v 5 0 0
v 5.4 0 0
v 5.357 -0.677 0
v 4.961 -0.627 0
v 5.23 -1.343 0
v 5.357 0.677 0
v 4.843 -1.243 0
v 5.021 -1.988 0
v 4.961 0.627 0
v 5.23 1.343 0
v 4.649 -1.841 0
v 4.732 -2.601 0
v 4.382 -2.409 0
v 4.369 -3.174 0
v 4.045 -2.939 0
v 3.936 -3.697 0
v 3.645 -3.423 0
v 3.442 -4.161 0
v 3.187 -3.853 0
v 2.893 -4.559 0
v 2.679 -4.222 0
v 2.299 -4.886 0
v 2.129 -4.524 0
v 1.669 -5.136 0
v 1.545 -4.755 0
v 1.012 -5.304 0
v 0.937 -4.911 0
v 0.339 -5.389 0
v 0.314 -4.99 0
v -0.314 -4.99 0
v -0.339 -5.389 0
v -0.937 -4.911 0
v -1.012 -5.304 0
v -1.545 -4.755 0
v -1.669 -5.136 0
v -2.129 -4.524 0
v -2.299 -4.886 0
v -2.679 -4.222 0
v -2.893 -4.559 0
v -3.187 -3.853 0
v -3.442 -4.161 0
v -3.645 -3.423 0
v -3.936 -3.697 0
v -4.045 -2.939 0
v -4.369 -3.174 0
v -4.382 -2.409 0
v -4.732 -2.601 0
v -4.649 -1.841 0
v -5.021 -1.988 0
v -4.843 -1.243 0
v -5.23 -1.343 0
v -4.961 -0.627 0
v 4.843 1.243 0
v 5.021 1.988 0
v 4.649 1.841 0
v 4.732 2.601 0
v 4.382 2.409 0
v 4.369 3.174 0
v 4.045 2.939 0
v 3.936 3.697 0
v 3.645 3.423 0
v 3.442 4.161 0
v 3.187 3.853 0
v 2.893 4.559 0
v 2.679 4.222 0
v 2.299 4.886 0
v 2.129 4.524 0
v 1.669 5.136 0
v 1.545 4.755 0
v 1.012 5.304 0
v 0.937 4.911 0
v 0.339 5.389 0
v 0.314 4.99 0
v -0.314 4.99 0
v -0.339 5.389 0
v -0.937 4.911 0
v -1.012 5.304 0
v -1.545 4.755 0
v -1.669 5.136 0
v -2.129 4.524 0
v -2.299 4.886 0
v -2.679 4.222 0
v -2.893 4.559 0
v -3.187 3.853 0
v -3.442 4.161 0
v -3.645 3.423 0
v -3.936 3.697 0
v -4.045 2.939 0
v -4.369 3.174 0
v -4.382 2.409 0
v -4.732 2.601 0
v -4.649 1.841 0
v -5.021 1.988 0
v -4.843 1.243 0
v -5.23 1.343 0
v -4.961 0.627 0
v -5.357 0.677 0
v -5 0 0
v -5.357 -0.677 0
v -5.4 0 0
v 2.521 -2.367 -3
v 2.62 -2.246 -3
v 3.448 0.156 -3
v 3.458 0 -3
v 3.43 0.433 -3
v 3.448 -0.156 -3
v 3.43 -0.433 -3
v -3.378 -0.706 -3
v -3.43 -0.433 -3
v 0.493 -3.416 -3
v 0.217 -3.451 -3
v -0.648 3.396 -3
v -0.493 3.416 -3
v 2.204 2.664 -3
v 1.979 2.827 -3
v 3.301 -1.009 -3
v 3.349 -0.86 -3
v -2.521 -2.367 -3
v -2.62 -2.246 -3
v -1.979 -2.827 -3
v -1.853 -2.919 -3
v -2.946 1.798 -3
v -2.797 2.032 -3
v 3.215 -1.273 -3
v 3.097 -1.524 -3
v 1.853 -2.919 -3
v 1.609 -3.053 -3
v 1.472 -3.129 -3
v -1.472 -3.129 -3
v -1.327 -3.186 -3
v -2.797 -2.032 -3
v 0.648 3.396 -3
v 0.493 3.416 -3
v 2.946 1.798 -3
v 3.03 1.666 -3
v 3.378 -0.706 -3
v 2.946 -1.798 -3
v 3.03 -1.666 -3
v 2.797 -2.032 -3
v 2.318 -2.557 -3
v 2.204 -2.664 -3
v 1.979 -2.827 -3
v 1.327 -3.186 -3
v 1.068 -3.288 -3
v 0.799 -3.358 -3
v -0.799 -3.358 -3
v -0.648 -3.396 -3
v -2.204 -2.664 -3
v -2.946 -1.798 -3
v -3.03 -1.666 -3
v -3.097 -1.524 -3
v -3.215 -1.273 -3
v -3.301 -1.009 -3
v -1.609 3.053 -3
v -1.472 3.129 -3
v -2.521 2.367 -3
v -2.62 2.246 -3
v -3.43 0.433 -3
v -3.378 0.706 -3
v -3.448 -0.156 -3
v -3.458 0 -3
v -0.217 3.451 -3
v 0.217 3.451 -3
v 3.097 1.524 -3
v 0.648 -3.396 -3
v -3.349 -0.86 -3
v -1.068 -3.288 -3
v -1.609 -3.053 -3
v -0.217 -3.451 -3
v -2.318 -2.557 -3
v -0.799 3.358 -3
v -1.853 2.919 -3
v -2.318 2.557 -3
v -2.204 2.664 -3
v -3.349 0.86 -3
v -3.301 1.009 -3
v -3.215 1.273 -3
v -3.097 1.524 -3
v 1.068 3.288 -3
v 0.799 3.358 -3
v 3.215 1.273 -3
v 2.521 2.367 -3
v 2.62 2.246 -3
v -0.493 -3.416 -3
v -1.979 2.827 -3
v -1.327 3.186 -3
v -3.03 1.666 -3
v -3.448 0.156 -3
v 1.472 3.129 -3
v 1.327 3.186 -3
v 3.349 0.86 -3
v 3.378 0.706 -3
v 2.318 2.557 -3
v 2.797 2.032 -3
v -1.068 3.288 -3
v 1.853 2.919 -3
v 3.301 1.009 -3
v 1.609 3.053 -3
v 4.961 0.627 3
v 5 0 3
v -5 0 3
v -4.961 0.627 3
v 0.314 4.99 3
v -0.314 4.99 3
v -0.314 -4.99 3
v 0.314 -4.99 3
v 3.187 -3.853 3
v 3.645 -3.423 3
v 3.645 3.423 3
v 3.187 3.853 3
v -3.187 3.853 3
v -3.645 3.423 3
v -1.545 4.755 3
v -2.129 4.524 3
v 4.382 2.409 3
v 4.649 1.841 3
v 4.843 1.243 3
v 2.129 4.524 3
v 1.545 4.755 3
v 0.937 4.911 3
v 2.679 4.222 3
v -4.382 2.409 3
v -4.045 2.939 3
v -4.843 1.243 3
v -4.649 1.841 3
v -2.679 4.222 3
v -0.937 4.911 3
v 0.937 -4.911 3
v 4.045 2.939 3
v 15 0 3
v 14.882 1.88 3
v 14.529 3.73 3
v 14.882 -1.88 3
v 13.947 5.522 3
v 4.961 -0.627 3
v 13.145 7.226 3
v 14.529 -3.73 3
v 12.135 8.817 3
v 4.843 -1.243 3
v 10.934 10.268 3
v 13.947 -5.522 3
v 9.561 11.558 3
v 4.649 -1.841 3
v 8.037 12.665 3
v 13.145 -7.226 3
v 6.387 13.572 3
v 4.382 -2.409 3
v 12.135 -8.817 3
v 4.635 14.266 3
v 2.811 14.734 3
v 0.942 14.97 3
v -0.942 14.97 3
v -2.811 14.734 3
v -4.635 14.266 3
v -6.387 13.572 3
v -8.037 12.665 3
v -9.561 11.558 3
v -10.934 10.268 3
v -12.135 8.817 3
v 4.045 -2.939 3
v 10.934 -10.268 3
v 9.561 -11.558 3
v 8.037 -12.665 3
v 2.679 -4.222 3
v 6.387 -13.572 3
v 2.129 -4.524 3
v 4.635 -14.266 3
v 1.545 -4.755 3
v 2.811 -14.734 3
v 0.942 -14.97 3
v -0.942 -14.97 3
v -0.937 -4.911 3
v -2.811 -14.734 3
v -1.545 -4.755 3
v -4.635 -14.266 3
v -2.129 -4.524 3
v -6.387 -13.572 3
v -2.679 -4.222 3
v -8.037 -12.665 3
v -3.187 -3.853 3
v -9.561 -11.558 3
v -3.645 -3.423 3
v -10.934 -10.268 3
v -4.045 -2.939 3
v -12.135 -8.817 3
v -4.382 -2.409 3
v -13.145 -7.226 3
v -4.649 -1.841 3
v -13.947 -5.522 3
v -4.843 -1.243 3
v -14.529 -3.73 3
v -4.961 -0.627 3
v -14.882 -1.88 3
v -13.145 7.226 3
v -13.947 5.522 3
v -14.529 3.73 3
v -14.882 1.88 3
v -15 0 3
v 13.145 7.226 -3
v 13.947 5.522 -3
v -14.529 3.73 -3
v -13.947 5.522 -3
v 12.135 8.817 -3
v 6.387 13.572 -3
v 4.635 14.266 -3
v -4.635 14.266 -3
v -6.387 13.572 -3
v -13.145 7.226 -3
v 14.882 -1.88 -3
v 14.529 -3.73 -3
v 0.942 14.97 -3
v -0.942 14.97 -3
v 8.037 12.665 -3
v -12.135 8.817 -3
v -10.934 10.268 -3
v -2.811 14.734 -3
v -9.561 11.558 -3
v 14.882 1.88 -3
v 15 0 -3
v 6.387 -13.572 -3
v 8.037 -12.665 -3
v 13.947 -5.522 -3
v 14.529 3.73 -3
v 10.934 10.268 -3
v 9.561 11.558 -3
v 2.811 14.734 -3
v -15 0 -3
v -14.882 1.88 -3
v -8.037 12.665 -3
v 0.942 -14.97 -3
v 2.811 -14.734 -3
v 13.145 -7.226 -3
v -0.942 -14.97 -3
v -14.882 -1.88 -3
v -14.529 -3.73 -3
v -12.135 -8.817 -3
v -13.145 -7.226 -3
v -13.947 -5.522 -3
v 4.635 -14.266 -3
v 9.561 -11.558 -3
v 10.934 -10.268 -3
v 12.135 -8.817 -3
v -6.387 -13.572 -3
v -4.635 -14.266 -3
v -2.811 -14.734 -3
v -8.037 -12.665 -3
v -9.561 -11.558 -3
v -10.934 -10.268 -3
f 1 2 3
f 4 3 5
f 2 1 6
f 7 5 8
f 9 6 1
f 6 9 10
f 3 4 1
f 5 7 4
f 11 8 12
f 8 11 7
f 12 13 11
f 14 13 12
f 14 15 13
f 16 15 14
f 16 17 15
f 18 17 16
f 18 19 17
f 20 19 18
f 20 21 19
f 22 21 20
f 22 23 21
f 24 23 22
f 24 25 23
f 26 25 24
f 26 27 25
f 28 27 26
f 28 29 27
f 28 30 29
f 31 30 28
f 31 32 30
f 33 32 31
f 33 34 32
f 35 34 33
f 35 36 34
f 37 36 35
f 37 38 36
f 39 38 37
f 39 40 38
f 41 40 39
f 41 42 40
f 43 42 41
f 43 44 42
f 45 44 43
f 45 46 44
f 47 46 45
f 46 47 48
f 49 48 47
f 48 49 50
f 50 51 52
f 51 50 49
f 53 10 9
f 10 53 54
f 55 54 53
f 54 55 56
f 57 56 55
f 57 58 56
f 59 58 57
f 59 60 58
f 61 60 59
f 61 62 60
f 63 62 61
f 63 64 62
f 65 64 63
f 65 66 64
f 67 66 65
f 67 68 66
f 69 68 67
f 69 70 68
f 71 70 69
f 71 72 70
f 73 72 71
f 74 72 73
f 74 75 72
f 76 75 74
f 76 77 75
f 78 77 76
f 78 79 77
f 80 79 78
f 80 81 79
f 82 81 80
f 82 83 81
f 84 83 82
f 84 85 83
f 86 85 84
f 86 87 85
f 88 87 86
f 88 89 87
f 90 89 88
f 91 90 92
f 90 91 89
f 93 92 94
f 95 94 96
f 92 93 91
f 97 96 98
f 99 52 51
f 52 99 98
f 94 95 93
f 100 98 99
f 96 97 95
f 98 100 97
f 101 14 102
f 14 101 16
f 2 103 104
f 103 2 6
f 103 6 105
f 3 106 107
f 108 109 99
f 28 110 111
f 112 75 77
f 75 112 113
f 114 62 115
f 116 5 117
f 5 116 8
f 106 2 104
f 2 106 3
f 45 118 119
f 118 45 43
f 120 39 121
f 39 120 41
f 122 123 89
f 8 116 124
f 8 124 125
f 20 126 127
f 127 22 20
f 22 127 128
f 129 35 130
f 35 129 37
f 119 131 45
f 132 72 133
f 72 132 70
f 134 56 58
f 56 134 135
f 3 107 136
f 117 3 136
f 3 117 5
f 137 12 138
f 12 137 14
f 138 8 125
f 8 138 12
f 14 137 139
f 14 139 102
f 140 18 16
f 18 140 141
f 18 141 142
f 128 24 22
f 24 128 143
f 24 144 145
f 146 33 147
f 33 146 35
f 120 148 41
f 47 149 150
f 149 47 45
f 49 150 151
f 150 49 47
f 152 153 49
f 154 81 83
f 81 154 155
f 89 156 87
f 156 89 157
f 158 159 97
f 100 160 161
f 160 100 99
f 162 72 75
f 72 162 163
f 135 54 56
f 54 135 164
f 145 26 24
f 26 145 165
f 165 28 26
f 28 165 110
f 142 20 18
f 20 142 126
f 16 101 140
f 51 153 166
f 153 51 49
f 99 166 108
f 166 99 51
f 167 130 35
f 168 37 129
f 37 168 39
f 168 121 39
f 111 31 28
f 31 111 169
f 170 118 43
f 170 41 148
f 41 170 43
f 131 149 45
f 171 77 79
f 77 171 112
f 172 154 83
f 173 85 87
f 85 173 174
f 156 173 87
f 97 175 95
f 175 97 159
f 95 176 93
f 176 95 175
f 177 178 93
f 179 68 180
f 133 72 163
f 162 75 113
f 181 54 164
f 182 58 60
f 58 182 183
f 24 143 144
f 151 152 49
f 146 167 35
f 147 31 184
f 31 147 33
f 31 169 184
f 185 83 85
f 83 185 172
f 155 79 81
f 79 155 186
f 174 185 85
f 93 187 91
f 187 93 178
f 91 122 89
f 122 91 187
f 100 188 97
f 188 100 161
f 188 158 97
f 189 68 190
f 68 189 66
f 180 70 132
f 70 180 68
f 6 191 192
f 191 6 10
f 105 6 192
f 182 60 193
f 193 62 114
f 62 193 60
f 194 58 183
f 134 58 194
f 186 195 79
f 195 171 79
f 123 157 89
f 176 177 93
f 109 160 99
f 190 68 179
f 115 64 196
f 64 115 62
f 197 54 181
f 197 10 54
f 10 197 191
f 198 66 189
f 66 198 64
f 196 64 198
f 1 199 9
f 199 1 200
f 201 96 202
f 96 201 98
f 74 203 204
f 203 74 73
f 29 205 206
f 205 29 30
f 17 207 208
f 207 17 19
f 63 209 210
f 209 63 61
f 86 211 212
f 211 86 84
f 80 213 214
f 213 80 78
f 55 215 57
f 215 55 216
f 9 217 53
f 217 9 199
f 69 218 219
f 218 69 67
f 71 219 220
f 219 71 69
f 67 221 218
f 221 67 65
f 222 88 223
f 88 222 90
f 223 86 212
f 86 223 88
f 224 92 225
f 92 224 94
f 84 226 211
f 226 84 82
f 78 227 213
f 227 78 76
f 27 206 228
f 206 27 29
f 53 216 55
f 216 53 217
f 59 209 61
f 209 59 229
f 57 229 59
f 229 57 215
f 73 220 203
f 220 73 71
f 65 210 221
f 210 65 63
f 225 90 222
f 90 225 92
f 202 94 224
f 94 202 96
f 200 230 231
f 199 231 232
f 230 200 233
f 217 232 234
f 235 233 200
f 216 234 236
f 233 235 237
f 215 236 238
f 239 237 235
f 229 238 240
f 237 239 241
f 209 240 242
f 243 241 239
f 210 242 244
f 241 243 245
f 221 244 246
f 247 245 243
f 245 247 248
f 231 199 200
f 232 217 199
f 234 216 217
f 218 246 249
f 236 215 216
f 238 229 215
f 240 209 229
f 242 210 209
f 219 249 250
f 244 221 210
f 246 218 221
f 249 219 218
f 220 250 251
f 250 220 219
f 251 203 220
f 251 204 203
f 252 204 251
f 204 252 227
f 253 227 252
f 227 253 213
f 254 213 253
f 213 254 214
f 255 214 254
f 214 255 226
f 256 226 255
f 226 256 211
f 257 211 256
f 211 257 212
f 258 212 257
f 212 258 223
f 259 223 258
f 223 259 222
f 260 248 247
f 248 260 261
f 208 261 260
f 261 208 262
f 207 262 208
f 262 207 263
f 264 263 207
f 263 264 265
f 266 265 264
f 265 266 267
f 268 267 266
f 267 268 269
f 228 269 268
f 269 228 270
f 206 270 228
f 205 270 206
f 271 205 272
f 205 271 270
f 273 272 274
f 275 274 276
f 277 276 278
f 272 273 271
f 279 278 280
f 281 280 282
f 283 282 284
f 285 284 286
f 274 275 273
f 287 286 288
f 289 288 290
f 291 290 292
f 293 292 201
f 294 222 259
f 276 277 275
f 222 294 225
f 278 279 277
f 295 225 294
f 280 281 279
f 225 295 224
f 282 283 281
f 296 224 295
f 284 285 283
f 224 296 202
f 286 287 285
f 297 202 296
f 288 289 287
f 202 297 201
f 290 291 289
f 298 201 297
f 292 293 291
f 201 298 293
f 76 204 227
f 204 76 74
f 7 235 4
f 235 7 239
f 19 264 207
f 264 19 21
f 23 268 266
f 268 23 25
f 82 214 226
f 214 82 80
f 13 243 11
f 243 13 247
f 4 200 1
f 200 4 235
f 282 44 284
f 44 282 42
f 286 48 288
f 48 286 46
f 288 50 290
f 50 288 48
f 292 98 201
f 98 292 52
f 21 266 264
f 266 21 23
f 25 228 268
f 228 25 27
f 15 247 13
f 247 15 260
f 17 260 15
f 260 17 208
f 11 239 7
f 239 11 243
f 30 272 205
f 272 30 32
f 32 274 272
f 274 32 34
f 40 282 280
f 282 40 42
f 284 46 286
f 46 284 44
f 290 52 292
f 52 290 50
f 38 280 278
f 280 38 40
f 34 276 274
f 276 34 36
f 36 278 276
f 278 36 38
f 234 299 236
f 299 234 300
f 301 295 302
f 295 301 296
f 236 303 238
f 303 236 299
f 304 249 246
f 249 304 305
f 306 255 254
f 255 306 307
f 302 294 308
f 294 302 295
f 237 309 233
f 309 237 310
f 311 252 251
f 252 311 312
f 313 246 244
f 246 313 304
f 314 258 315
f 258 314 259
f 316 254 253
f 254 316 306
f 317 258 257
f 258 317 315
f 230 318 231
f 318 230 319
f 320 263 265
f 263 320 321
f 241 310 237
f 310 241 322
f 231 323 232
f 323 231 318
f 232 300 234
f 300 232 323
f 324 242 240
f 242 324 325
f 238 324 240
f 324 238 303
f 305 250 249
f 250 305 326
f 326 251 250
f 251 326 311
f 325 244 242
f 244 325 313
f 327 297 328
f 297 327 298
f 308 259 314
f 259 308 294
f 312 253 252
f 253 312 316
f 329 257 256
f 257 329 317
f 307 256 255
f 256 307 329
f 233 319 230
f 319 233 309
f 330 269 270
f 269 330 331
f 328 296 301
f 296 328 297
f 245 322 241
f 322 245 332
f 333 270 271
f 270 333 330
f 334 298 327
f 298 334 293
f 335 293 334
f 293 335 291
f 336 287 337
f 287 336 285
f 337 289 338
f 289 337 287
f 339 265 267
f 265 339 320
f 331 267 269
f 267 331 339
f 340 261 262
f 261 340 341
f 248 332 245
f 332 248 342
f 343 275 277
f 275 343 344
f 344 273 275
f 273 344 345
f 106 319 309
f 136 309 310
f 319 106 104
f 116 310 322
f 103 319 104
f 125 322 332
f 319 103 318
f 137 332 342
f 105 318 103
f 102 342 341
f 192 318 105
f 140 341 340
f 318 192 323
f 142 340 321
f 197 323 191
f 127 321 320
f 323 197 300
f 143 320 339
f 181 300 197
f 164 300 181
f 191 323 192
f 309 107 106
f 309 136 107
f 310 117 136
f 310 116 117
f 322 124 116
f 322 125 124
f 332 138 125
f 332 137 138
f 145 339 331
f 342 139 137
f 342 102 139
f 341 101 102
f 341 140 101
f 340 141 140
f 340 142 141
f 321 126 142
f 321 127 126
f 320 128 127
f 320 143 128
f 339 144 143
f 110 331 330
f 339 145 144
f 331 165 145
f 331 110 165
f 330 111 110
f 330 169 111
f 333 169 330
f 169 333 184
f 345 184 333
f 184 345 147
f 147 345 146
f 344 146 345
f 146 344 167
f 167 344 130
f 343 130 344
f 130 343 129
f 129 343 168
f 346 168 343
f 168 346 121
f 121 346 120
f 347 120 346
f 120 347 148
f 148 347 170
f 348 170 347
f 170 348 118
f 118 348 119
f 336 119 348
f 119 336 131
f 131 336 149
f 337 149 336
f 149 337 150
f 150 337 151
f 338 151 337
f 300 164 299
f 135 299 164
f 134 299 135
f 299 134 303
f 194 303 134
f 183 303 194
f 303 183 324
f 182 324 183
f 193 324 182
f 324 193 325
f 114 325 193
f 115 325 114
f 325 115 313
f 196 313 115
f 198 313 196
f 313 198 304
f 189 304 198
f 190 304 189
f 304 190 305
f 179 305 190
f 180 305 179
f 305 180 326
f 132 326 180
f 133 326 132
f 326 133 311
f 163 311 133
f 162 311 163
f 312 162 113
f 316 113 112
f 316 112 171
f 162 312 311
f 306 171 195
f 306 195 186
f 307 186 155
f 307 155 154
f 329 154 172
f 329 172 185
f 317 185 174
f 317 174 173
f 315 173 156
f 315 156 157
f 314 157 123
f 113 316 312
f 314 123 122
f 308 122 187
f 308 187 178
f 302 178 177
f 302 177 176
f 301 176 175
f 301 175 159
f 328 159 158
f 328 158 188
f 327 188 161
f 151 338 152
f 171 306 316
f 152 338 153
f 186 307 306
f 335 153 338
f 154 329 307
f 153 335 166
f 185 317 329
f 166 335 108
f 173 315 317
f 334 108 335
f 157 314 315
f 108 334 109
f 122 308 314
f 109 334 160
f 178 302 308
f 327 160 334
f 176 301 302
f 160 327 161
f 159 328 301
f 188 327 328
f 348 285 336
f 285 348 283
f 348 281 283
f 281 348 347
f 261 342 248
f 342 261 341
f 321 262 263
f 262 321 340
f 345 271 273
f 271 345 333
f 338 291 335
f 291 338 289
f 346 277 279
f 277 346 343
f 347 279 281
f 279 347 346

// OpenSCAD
$fn = 50;


difference() {
	union() {
		translate(v = [0, 0, -3.0000000000]) {
			cylinder(h = 6, r = 15.0000000000);
		}
	}
	union() {
		translate(v = [0, 0, 0]) {
			rotate(a = [0, 0, 0]) {
				difference() {
					union() {
						translate(v = [0, 0, -6.0000000000]) {
							cylinder(h = 6, r = 2.6000000000);
						}
						translate(v = [0, 0, -3.9000000000]) {
							cylinder(h = 3.9000000000, r1 = 2.8750000000, r2 = 5.4000000000);
						}
						translate(v = [0, 0, -6.0000000000]) {
							cylinder(h = 6, r = 2.8750000000);
						}
						translate(v = [0, 0, -6.0000000000]) {
							cylinder(h = 6, r = 2.6000000000);
						}
					}
					union();
				}
			}
		}
		#cylinder(h = 3, r = 5.0000000000);
	}
}
